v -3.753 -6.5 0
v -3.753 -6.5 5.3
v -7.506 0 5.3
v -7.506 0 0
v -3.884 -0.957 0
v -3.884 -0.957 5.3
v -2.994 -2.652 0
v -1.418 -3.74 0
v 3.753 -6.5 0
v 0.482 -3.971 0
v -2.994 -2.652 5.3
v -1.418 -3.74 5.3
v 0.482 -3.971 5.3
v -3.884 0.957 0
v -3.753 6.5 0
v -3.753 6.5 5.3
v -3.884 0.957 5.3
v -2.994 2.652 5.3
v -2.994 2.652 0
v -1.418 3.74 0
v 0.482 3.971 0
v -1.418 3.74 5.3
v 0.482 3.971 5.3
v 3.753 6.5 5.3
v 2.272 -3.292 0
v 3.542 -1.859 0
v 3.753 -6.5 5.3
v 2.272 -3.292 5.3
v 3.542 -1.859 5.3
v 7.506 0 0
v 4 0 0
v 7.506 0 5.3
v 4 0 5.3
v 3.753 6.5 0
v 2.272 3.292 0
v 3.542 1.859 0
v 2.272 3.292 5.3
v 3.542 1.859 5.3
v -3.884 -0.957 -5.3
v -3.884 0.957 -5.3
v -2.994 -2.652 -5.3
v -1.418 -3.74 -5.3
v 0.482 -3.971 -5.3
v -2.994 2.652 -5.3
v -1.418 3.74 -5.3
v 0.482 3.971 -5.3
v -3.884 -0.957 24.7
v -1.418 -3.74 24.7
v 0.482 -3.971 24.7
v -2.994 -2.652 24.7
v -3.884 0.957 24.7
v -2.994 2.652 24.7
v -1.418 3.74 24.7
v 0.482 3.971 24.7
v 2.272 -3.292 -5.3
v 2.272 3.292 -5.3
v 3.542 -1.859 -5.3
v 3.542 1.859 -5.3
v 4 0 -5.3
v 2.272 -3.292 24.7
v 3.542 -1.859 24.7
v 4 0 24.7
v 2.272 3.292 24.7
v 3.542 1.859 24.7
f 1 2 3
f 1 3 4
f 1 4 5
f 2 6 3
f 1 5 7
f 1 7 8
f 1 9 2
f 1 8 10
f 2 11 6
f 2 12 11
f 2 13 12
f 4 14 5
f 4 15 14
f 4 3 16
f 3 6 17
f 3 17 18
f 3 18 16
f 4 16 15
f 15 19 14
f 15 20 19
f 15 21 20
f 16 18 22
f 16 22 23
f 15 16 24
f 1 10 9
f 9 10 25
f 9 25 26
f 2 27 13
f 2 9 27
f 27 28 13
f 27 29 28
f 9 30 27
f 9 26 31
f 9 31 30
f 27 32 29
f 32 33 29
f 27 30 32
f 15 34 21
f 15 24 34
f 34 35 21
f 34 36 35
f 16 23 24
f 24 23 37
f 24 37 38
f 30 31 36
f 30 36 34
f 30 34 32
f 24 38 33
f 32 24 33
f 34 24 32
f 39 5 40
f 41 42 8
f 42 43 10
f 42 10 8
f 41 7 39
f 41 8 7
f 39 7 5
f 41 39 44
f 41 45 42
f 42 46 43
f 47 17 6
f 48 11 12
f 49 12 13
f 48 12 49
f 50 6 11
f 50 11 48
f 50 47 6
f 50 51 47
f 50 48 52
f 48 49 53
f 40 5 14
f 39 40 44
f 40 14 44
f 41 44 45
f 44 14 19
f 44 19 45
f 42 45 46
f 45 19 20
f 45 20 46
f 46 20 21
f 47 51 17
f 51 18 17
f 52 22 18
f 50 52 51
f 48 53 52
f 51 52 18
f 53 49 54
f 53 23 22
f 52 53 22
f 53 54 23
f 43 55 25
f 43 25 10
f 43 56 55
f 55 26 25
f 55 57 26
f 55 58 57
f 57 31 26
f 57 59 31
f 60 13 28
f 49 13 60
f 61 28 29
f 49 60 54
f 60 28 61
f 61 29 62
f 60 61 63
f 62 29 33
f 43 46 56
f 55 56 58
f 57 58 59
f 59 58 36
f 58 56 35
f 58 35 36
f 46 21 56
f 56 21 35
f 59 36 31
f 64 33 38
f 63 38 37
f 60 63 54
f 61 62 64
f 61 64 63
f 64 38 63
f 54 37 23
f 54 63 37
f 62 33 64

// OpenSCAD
// M8 Hex Bolt (shank only, no threads)

// Bolt dimensions
head_across_flats = 13; // Across-flats of the hex head
head_height = 5.3;     // Height of the hex head
shank_diameter = 8;    // Diameter of the shank
shank_length = 30;     // Length of the shank

// Calculate the radius to the vertices of the hexagon from the center
hex_radius_to_vertex = head_across_flats / 2 / cos(30);

// Create the hex head using polygon and linear_extrude
module hex_head() {
    linear_extrude(height = head_height) {
        polygon(points = [
            [hex_radius_to_vertex * cos(0), hex_radius_to_vertex * sin(0)],
            [hex_radius_to_vertex * cos(60), hex_radius_to_vertex * sin(60)],
            [hex_radius_to_vertex * cos(120), hex_radius_to_vertex * sin(120)],
            [hex_radius_to_vertex * cos(180), hex_radius_to_vertex * sin(180)],
            [hex_radius_to_vertex * cos(240), hex_radius_to_vertex * sin(240)],
            [hex_radius_to_vertex * cos(300), hex_radius_to_vertex * sin(300)]
        ]);
    }
}

// Create the shank
module shank() {
    cylinder(h=shank_length, r=shank_diameter/2, center=false);
}

// Assemble the bolt
module m8_bolt() {
    // Place the hex head at the origin (z=0)
    // The hex_head is created with its base at z=0 by default.
    hex_head();

    // Place the shank below the head, extending in the -Z direction.
    // The head's bottom face is at z=0. So the shank should start from z=0 downwards.
    translate([0, 0, -head_height]) {
        shank();
    }
}

// Render the bolt
m8_bolt();
